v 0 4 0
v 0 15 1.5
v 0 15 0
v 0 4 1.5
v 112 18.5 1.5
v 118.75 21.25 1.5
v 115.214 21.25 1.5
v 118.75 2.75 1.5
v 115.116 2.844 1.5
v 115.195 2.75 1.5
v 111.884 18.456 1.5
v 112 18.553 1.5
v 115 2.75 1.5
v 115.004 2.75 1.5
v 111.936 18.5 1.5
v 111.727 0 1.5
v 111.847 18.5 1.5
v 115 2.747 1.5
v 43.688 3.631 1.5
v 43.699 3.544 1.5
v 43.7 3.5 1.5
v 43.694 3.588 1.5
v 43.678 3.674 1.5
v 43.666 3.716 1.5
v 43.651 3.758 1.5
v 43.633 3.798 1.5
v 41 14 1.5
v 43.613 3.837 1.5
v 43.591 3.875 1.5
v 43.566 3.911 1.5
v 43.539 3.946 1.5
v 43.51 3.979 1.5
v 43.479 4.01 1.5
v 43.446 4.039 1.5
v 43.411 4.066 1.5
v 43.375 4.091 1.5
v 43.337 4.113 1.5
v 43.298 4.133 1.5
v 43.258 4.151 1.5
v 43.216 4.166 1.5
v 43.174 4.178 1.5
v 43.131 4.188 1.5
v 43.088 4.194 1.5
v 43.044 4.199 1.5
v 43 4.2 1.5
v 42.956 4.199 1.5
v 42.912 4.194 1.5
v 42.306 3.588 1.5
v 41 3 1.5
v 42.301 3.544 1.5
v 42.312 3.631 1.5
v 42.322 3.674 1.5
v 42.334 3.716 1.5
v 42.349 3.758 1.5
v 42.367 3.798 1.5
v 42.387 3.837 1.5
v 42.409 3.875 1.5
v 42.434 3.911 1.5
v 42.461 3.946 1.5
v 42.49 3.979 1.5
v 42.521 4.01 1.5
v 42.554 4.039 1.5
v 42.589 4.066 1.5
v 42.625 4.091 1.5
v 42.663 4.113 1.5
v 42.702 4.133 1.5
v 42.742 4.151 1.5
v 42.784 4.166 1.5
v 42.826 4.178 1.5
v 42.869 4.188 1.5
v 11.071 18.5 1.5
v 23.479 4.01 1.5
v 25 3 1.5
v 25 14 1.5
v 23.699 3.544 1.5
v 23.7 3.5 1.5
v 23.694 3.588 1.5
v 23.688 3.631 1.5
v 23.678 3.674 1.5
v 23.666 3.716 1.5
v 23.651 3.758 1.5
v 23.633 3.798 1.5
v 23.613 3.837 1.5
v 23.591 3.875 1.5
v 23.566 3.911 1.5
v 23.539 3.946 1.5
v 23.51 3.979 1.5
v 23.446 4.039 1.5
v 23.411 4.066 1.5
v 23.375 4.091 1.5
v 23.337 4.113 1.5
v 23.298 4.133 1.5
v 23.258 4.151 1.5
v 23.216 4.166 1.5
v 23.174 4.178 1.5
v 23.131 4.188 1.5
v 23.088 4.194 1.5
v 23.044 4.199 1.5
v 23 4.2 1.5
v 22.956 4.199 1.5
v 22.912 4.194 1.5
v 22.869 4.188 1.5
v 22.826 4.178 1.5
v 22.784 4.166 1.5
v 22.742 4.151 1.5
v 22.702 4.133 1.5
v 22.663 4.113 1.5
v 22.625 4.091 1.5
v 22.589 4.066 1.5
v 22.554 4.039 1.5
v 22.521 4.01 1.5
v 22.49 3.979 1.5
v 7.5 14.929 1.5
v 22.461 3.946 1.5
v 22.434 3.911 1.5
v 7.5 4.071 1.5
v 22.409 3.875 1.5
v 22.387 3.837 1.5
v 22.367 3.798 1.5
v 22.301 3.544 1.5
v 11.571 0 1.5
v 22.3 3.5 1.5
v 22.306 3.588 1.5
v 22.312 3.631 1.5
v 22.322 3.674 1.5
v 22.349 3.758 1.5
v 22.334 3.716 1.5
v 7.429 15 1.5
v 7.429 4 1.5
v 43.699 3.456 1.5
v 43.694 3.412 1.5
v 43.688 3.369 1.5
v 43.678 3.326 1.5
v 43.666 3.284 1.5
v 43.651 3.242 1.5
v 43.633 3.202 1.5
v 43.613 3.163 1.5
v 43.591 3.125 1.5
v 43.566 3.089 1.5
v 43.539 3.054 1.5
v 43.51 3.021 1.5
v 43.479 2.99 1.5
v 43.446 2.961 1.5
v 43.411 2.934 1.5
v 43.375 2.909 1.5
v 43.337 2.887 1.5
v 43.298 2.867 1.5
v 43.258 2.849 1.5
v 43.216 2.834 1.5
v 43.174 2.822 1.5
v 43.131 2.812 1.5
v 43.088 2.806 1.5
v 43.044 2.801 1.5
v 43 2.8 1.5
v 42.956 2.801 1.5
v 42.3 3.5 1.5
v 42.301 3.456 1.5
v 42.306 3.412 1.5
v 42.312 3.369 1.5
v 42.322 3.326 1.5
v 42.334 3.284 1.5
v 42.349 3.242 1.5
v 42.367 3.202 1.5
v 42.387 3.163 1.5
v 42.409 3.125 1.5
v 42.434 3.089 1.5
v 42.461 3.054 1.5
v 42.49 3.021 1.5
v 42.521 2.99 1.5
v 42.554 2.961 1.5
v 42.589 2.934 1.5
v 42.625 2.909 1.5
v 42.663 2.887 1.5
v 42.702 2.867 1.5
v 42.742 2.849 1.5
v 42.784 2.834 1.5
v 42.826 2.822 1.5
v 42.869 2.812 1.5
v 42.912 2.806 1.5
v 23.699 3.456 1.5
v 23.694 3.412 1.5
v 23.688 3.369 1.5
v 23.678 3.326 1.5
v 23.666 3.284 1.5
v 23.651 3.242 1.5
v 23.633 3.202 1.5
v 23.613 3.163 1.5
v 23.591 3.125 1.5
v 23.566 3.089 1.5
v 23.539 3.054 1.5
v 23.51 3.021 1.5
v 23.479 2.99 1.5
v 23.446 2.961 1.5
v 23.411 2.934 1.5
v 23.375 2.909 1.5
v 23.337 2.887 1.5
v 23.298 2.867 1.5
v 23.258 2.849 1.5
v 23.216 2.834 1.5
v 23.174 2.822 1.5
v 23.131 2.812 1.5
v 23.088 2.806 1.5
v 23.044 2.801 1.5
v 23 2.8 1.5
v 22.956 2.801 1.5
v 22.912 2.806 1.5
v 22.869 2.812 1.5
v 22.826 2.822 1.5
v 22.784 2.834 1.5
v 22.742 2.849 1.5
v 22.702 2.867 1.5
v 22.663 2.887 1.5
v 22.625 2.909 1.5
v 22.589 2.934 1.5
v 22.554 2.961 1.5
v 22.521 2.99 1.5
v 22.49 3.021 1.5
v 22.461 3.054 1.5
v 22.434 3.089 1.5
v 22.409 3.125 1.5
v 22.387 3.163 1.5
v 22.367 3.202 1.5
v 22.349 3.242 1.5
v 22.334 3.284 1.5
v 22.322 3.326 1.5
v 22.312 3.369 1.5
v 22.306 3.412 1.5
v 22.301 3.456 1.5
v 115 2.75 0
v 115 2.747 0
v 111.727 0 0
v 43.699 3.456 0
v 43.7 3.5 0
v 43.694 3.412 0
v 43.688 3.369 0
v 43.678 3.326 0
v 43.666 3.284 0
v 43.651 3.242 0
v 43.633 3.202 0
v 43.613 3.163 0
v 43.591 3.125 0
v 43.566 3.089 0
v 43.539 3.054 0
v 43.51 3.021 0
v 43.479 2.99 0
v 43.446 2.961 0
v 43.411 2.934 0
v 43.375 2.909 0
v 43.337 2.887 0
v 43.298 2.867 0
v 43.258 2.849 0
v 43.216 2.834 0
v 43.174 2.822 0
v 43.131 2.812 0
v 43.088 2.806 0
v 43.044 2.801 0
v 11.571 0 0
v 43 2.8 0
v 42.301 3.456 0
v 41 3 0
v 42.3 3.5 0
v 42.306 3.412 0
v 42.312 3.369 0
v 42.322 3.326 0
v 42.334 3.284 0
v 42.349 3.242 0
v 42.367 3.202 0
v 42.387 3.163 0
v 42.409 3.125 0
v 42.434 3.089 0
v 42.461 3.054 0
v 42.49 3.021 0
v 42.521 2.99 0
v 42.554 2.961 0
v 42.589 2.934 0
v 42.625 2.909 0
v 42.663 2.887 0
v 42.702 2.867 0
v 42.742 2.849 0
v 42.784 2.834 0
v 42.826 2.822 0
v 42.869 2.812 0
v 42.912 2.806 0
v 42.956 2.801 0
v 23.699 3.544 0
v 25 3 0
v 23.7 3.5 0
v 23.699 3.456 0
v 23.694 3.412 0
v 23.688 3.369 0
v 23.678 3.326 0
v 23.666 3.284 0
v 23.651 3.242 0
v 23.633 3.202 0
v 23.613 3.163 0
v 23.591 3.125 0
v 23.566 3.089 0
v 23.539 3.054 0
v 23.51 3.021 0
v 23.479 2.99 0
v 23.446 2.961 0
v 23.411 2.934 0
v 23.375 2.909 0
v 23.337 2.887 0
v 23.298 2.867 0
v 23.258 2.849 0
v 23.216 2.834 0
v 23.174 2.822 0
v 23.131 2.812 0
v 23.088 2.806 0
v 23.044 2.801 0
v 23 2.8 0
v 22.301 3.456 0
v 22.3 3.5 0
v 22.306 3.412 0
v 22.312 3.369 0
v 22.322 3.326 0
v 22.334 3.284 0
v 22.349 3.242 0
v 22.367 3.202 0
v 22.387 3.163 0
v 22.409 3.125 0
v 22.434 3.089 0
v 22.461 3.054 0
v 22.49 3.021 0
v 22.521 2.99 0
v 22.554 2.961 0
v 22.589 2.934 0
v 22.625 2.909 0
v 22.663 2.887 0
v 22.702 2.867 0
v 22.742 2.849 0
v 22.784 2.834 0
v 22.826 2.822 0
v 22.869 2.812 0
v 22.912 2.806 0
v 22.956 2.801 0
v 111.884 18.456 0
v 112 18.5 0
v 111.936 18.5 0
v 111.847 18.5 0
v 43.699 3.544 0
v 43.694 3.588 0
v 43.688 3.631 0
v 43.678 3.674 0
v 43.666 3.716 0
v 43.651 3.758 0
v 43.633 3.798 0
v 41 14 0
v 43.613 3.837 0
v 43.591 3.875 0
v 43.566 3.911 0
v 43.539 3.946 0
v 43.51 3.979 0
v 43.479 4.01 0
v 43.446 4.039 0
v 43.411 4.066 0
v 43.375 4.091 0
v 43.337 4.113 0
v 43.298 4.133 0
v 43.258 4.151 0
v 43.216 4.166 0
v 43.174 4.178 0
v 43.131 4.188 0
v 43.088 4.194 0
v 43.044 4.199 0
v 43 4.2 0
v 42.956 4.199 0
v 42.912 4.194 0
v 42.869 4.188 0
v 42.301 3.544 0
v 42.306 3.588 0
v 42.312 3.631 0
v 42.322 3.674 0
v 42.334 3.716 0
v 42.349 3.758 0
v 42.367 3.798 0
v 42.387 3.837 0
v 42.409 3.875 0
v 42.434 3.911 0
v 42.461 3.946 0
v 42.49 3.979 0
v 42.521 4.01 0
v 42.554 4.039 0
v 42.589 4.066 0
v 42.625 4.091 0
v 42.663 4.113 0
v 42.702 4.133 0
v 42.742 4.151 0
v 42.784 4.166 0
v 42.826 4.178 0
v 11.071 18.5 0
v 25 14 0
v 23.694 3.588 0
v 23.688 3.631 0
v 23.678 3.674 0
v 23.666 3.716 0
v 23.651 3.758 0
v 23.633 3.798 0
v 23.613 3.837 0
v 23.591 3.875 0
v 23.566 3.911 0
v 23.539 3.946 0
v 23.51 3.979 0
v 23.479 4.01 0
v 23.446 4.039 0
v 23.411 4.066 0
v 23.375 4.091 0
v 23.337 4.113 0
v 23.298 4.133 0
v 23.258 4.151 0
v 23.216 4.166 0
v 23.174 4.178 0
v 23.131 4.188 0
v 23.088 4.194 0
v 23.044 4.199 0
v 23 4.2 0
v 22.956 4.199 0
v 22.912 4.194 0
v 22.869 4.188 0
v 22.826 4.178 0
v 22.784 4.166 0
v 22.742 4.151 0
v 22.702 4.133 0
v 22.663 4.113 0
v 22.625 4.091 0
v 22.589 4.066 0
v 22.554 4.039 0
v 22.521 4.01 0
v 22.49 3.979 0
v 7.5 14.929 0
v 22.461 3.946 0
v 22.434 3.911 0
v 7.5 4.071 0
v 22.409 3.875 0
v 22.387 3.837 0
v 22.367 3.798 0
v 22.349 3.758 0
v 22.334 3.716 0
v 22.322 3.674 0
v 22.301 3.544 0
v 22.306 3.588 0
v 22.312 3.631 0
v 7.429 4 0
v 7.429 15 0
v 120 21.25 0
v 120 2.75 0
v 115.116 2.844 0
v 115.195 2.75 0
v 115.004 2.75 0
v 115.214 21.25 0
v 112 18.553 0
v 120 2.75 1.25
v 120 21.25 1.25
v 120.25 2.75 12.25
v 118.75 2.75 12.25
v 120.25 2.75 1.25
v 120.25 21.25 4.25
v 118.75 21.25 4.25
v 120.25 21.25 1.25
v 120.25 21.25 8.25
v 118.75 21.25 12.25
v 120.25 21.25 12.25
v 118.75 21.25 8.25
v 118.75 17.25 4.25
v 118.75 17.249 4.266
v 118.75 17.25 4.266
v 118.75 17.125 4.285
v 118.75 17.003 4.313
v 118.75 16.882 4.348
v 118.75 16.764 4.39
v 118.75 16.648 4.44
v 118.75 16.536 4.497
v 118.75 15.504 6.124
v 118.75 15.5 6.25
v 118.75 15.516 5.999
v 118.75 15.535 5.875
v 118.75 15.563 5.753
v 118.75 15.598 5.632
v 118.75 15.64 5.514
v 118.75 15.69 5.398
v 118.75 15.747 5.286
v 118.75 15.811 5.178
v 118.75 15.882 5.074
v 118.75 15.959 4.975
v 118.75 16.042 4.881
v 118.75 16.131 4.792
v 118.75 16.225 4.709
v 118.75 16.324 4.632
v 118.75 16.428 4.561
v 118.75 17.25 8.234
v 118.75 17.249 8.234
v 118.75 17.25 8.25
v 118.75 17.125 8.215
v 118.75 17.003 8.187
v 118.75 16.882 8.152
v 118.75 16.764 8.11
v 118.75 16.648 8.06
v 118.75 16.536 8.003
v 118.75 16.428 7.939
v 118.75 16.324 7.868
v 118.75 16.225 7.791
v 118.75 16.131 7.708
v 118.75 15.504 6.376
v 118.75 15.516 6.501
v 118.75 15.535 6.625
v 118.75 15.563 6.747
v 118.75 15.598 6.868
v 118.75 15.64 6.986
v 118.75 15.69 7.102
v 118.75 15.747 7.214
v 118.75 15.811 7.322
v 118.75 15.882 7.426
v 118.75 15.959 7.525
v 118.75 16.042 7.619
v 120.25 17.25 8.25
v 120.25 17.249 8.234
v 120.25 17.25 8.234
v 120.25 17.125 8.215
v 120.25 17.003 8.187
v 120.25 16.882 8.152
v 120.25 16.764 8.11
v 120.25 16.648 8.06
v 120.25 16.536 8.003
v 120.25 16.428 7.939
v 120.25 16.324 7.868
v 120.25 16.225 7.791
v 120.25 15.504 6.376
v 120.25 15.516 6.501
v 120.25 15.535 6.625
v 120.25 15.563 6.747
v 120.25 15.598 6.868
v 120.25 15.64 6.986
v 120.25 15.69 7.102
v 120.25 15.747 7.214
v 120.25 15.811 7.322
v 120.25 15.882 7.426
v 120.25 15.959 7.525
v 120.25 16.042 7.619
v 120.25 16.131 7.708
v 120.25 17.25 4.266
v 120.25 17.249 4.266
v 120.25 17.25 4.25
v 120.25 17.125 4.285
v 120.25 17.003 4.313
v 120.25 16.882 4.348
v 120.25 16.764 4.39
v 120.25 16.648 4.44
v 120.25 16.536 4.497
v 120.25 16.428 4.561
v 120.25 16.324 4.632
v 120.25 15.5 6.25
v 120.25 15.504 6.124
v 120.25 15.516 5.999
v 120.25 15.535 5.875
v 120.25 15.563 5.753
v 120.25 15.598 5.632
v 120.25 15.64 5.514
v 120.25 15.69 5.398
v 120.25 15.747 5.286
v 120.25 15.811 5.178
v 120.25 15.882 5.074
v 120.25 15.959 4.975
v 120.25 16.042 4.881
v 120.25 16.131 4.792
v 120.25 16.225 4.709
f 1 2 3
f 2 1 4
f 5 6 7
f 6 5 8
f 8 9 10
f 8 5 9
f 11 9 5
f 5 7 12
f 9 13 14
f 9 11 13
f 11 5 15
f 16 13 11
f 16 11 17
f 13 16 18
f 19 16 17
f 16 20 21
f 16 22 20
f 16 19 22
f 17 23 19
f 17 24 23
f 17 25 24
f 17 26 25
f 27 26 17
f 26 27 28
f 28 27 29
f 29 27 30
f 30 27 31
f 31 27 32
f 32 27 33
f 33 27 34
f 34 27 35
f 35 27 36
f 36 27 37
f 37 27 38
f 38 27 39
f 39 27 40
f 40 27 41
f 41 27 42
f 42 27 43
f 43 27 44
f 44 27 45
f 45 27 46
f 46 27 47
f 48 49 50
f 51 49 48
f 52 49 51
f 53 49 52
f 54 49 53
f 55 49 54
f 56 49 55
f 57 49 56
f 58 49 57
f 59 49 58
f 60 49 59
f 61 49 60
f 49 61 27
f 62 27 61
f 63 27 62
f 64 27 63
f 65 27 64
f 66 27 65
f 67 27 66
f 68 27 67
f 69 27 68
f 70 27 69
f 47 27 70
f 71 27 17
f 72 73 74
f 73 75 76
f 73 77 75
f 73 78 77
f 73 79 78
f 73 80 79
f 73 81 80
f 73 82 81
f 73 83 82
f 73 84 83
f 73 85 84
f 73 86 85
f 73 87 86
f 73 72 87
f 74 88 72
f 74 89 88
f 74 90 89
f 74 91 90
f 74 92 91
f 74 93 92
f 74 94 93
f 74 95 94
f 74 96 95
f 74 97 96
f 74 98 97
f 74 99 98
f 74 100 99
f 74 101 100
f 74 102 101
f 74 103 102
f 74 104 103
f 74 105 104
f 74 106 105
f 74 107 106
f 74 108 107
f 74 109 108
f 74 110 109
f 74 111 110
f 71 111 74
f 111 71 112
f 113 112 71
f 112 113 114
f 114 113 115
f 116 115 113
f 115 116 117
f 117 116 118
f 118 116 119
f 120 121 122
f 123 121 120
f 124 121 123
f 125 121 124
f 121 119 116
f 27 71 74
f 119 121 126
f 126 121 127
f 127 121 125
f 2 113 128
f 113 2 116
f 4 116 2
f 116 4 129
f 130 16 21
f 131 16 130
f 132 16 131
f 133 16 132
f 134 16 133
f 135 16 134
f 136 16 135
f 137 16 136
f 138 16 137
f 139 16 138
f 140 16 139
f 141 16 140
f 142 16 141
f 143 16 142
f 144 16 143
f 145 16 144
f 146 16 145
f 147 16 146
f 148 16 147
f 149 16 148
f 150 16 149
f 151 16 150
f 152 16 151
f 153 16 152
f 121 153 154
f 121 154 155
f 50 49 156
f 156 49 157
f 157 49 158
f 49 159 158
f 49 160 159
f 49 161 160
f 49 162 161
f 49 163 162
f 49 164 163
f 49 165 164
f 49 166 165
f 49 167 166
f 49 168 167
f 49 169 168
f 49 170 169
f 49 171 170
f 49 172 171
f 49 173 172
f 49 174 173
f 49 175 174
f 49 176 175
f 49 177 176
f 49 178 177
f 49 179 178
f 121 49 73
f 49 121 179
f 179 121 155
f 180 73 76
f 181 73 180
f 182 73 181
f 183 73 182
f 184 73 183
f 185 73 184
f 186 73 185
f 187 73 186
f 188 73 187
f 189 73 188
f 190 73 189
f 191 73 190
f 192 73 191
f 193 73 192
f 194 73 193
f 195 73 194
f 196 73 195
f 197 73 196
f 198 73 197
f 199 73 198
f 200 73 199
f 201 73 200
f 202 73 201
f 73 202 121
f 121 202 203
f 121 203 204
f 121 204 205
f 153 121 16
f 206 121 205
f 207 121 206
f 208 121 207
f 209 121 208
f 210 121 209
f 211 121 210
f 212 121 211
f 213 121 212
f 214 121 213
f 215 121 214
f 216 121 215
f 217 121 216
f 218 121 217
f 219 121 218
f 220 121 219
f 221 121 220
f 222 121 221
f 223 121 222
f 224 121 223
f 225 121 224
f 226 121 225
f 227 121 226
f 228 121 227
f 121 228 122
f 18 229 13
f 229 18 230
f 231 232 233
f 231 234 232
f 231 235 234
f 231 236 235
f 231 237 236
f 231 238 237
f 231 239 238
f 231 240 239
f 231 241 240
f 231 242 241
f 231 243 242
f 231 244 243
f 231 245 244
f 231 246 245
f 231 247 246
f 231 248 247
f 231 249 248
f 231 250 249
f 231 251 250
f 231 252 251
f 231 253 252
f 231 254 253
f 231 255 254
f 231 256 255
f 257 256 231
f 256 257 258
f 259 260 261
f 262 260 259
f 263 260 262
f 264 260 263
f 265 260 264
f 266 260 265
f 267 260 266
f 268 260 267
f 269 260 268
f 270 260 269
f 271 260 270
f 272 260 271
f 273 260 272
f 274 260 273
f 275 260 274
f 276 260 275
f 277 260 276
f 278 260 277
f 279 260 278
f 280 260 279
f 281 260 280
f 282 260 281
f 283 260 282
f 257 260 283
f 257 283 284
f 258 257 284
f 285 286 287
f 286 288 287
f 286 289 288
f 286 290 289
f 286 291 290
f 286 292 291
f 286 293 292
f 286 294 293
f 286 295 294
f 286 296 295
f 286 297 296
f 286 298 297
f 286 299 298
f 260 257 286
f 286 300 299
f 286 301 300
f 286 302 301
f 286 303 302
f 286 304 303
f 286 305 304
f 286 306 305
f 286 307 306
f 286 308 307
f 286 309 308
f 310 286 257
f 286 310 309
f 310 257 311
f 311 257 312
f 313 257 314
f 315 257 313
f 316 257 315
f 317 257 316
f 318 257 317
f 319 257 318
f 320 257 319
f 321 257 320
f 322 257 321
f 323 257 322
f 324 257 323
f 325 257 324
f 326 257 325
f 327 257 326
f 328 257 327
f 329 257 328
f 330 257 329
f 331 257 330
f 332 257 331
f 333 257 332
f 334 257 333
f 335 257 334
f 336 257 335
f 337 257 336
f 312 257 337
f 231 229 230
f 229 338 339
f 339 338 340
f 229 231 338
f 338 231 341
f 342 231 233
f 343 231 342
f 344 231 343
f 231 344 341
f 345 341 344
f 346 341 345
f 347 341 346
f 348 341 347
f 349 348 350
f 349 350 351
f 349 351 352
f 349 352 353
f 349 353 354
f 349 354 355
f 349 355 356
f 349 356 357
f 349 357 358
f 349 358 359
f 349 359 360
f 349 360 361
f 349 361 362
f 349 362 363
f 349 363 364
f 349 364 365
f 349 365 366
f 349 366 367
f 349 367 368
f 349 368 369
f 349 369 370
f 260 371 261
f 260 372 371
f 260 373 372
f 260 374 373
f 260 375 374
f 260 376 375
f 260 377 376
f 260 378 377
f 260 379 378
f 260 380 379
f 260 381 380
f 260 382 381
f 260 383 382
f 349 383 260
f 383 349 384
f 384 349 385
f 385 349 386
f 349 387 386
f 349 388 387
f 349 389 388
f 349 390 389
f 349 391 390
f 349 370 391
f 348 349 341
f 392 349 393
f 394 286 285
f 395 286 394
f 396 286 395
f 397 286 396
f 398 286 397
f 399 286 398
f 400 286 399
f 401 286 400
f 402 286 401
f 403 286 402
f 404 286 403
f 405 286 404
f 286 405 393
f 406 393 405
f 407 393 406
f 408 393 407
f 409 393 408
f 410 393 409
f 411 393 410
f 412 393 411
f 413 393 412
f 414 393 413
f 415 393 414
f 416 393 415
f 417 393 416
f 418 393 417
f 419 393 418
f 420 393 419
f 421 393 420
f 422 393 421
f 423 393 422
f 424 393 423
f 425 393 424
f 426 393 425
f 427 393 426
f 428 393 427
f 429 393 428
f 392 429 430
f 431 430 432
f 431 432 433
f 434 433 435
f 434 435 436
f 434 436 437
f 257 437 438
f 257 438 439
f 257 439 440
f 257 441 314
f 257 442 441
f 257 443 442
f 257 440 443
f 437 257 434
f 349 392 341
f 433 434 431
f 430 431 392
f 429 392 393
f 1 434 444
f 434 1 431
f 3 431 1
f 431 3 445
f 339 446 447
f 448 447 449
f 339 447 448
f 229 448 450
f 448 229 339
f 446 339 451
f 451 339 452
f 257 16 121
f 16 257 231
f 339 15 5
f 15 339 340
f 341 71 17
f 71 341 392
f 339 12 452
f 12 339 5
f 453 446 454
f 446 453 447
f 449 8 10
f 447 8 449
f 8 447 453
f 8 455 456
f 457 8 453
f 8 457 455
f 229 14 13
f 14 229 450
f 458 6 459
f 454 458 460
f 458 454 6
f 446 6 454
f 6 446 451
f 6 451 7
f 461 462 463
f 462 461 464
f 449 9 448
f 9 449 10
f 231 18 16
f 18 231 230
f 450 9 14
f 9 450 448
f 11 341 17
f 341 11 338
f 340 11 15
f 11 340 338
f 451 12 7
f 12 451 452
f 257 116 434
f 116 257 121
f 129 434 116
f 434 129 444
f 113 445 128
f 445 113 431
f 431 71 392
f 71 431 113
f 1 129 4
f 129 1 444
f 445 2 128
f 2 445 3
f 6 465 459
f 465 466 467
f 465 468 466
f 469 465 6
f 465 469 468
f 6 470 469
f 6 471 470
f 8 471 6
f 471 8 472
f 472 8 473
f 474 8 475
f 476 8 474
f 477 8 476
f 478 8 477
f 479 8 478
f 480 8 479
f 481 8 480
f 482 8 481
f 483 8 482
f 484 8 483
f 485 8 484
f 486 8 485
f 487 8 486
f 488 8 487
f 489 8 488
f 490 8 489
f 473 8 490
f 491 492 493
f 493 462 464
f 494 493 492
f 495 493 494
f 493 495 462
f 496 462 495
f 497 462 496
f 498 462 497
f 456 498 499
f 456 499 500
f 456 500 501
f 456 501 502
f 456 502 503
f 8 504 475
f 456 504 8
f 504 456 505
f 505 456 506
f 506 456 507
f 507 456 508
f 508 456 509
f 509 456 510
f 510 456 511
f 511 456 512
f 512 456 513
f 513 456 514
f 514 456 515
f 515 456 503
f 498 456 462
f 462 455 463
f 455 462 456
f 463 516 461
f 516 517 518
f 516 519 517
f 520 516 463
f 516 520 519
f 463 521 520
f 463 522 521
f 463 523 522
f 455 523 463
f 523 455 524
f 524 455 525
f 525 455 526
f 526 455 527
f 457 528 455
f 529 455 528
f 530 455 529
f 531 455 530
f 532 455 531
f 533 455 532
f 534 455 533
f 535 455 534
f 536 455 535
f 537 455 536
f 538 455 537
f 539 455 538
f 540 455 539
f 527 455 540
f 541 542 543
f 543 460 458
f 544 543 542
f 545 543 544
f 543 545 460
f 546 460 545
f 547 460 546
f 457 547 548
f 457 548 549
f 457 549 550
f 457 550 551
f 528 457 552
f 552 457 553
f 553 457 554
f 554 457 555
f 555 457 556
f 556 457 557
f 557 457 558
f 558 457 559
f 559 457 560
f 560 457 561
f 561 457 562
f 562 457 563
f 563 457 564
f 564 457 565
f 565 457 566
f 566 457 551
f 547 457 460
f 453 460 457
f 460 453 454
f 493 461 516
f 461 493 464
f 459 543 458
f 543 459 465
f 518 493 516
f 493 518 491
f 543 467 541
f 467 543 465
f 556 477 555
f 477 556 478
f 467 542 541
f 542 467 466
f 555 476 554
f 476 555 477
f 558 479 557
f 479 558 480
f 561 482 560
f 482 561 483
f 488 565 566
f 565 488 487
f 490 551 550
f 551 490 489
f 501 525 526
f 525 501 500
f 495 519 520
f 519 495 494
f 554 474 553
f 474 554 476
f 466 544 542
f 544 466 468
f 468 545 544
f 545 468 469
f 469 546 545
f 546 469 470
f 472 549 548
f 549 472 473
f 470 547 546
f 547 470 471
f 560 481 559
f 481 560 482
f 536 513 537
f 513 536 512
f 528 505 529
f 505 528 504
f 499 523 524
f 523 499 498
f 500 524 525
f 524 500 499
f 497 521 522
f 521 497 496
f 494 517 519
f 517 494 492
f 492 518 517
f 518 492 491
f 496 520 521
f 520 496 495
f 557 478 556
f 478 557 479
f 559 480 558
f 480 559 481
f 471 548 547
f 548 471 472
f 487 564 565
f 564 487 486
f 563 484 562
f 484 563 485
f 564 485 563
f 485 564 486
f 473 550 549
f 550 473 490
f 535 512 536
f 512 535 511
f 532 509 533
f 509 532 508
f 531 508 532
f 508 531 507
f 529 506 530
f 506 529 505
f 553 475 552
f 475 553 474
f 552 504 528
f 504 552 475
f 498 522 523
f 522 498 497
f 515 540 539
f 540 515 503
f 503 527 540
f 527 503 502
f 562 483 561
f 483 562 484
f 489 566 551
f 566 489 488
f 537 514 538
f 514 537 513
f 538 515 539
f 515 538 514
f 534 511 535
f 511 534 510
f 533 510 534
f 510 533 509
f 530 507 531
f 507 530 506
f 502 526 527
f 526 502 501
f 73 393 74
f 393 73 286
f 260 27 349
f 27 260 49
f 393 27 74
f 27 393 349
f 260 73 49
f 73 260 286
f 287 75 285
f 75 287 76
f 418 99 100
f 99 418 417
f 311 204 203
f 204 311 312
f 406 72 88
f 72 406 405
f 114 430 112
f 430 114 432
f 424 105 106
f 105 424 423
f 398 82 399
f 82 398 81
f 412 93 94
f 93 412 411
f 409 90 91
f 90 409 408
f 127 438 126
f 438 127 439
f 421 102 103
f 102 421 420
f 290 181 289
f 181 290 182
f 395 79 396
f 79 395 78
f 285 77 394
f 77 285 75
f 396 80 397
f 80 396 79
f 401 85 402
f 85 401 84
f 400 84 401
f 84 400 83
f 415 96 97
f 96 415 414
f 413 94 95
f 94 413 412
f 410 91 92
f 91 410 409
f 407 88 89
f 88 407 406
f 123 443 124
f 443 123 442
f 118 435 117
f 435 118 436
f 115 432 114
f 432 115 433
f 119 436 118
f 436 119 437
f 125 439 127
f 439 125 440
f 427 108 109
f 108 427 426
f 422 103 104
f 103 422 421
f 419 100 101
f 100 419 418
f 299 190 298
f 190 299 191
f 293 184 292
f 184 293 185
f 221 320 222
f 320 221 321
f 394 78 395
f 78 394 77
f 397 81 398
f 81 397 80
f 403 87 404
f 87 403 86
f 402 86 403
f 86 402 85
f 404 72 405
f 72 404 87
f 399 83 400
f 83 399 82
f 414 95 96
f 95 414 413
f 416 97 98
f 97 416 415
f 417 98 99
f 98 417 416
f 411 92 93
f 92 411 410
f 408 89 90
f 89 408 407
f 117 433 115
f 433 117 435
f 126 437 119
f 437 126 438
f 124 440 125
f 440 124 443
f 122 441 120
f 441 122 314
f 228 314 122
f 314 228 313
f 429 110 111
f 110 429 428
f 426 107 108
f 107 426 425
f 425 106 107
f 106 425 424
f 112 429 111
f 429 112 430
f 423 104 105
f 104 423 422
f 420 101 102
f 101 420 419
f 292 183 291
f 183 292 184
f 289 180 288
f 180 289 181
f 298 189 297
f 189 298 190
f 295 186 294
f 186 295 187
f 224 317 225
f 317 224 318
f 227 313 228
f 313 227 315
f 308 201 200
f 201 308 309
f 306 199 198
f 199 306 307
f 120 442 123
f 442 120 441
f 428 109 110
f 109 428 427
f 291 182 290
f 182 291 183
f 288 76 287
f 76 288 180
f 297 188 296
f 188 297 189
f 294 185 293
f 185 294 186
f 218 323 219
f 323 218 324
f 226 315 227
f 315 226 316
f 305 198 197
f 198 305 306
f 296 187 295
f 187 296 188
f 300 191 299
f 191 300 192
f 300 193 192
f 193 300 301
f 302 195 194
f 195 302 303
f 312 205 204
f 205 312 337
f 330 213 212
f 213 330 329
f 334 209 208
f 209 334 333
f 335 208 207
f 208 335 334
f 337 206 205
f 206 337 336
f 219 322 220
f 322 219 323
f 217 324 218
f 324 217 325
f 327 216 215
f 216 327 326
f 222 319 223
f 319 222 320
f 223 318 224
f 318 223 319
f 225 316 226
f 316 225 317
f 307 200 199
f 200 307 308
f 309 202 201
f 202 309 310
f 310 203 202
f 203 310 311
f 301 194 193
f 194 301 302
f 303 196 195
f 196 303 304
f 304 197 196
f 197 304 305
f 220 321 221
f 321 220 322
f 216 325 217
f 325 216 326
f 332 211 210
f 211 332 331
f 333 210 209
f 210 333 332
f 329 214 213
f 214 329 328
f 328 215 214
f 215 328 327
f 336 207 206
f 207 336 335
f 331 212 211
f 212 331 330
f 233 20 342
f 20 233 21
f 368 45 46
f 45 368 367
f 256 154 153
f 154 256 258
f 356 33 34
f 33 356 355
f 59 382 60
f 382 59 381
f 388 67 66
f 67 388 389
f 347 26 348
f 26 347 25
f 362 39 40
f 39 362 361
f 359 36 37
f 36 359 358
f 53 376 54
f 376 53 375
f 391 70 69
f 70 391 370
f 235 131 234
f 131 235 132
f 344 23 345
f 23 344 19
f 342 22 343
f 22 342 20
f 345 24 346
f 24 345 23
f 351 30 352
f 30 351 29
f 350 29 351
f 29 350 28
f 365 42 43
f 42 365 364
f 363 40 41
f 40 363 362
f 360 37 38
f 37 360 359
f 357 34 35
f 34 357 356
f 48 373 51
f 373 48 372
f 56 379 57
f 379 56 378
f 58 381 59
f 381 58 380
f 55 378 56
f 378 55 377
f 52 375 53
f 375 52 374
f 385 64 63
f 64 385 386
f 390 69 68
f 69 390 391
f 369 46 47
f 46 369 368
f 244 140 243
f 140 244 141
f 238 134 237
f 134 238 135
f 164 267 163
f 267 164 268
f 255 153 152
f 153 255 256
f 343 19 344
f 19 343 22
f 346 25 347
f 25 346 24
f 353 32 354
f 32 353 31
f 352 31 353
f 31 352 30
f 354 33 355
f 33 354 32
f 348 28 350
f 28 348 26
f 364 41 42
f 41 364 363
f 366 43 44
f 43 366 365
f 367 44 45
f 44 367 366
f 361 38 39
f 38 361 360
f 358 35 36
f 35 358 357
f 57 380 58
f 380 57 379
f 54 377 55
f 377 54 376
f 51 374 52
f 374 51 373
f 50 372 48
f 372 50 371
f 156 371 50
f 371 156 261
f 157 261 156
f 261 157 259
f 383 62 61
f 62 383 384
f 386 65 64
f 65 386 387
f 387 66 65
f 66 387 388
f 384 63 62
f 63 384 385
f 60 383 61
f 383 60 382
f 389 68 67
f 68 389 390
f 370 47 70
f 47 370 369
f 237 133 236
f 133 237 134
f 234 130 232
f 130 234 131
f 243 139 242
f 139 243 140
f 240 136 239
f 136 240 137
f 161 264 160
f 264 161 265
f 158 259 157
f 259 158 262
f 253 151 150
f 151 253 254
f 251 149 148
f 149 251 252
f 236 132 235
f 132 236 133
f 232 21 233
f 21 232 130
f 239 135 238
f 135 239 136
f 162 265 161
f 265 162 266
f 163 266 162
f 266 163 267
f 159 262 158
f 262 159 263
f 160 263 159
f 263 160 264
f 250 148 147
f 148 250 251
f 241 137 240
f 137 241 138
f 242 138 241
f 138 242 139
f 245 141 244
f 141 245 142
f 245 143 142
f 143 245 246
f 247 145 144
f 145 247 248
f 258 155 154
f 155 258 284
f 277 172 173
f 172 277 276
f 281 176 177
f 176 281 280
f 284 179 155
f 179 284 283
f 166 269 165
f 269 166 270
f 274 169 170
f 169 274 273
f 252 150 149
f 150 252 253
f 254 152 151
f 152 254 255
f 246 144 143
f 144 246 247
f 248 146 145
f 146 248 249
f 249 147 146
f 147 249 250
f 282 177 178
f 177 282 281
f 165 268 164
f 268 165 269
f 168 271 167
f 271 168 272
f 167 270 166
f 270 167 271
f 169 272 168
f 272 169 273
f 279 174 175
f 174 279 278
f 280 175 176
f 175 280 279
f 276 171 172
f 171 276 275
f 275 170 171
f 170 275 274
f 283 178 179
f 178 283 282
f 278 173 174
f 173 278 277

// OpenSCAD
//adapted from https://github.com/Petraea/PCI-Bracket/blob/master/pci_bracket.scad

thickness=1.5;
$fn=100;

module pci_bracket_closed() {
		union() {
        difference() {
            union () {
                translate([0,-0.25,0]) cube([115,18.5,thickness],center=true);
                translate([58.5,2.5,0]) cube([8,18.5,thickness],center=true);
            }
            translate([57,-13.7,0]) rotate([0,0,40]) cube([10,10,10],center=true);
            translate([55,16,0]) rotate([0,0,40]) cube([10,10,10],center=true);
            translate([-50,-12.5,0]) rotate([0,0,45]) cube([10,10,10],center=true);
            translate([-50,12.5,0]) rotate([0,0,45]) cube([10,10,10],center=true);
            translate([-55,-10.5,0]) cube([10,10,10],center=true);
            translate([-55,10.5,0]) cube([10,10,10],center=true);
        }
        difference() {
            translate([62,2.5,6]) cube([thickness,18.5,11],center=true);
            translate([62,10.75,5.5]) cube([2,6,4],center=true);
            translate([62,8,5.5]) rotate([0,90,0]) cylinder(r=2,h=2,center=true);
        }
    }
}

module card_mount(){
    card_mount_length=13;
		card_mount_width=8;
		cube([card_mount_width,card_mount_length,thickness]);
	//TODO: screw hole
}

module sfp_hole(){
    sfp_hole_width=16;
		sfp_hole_height=11;
		translate([0,0,-thickness])cube([sfp_hole_width,sfp_hole_height,3*thickness]);
}

module led_hole(){
    led_hole_radius=0.7;
		translate([0,0,-thickness])cylinder(r=led_hole_radius,h=3*thickness);
}


module pci_bracket_solarflare_singleport(){
//uncomment to add the rail.. but makes it harder to print , not much benefit
//rotate([90,0,0])
difference(){
        //move to the origin
		translate([115/2,(18.5/2)+0.25,thickness/2])pci_bracket_closed();
		// SFP
		translate([25.0,3.0,0])sfp_hole();

		// LINK
		translate([25.0-2,3.5,0])led_hole();

		// ACT
		translate([25.0+16+2,3.5,0])led_hole();
}


//uncomment to add the rail.. but makes it harder to print , not much benefit
//translate([16,0,0])card_mount();
//translate([70,0,0])card_mount();
//rail
//translate([16,0,0])cube([54.0,1.5,thickness]);
}

pci_bracket_solarflare_singleport();
